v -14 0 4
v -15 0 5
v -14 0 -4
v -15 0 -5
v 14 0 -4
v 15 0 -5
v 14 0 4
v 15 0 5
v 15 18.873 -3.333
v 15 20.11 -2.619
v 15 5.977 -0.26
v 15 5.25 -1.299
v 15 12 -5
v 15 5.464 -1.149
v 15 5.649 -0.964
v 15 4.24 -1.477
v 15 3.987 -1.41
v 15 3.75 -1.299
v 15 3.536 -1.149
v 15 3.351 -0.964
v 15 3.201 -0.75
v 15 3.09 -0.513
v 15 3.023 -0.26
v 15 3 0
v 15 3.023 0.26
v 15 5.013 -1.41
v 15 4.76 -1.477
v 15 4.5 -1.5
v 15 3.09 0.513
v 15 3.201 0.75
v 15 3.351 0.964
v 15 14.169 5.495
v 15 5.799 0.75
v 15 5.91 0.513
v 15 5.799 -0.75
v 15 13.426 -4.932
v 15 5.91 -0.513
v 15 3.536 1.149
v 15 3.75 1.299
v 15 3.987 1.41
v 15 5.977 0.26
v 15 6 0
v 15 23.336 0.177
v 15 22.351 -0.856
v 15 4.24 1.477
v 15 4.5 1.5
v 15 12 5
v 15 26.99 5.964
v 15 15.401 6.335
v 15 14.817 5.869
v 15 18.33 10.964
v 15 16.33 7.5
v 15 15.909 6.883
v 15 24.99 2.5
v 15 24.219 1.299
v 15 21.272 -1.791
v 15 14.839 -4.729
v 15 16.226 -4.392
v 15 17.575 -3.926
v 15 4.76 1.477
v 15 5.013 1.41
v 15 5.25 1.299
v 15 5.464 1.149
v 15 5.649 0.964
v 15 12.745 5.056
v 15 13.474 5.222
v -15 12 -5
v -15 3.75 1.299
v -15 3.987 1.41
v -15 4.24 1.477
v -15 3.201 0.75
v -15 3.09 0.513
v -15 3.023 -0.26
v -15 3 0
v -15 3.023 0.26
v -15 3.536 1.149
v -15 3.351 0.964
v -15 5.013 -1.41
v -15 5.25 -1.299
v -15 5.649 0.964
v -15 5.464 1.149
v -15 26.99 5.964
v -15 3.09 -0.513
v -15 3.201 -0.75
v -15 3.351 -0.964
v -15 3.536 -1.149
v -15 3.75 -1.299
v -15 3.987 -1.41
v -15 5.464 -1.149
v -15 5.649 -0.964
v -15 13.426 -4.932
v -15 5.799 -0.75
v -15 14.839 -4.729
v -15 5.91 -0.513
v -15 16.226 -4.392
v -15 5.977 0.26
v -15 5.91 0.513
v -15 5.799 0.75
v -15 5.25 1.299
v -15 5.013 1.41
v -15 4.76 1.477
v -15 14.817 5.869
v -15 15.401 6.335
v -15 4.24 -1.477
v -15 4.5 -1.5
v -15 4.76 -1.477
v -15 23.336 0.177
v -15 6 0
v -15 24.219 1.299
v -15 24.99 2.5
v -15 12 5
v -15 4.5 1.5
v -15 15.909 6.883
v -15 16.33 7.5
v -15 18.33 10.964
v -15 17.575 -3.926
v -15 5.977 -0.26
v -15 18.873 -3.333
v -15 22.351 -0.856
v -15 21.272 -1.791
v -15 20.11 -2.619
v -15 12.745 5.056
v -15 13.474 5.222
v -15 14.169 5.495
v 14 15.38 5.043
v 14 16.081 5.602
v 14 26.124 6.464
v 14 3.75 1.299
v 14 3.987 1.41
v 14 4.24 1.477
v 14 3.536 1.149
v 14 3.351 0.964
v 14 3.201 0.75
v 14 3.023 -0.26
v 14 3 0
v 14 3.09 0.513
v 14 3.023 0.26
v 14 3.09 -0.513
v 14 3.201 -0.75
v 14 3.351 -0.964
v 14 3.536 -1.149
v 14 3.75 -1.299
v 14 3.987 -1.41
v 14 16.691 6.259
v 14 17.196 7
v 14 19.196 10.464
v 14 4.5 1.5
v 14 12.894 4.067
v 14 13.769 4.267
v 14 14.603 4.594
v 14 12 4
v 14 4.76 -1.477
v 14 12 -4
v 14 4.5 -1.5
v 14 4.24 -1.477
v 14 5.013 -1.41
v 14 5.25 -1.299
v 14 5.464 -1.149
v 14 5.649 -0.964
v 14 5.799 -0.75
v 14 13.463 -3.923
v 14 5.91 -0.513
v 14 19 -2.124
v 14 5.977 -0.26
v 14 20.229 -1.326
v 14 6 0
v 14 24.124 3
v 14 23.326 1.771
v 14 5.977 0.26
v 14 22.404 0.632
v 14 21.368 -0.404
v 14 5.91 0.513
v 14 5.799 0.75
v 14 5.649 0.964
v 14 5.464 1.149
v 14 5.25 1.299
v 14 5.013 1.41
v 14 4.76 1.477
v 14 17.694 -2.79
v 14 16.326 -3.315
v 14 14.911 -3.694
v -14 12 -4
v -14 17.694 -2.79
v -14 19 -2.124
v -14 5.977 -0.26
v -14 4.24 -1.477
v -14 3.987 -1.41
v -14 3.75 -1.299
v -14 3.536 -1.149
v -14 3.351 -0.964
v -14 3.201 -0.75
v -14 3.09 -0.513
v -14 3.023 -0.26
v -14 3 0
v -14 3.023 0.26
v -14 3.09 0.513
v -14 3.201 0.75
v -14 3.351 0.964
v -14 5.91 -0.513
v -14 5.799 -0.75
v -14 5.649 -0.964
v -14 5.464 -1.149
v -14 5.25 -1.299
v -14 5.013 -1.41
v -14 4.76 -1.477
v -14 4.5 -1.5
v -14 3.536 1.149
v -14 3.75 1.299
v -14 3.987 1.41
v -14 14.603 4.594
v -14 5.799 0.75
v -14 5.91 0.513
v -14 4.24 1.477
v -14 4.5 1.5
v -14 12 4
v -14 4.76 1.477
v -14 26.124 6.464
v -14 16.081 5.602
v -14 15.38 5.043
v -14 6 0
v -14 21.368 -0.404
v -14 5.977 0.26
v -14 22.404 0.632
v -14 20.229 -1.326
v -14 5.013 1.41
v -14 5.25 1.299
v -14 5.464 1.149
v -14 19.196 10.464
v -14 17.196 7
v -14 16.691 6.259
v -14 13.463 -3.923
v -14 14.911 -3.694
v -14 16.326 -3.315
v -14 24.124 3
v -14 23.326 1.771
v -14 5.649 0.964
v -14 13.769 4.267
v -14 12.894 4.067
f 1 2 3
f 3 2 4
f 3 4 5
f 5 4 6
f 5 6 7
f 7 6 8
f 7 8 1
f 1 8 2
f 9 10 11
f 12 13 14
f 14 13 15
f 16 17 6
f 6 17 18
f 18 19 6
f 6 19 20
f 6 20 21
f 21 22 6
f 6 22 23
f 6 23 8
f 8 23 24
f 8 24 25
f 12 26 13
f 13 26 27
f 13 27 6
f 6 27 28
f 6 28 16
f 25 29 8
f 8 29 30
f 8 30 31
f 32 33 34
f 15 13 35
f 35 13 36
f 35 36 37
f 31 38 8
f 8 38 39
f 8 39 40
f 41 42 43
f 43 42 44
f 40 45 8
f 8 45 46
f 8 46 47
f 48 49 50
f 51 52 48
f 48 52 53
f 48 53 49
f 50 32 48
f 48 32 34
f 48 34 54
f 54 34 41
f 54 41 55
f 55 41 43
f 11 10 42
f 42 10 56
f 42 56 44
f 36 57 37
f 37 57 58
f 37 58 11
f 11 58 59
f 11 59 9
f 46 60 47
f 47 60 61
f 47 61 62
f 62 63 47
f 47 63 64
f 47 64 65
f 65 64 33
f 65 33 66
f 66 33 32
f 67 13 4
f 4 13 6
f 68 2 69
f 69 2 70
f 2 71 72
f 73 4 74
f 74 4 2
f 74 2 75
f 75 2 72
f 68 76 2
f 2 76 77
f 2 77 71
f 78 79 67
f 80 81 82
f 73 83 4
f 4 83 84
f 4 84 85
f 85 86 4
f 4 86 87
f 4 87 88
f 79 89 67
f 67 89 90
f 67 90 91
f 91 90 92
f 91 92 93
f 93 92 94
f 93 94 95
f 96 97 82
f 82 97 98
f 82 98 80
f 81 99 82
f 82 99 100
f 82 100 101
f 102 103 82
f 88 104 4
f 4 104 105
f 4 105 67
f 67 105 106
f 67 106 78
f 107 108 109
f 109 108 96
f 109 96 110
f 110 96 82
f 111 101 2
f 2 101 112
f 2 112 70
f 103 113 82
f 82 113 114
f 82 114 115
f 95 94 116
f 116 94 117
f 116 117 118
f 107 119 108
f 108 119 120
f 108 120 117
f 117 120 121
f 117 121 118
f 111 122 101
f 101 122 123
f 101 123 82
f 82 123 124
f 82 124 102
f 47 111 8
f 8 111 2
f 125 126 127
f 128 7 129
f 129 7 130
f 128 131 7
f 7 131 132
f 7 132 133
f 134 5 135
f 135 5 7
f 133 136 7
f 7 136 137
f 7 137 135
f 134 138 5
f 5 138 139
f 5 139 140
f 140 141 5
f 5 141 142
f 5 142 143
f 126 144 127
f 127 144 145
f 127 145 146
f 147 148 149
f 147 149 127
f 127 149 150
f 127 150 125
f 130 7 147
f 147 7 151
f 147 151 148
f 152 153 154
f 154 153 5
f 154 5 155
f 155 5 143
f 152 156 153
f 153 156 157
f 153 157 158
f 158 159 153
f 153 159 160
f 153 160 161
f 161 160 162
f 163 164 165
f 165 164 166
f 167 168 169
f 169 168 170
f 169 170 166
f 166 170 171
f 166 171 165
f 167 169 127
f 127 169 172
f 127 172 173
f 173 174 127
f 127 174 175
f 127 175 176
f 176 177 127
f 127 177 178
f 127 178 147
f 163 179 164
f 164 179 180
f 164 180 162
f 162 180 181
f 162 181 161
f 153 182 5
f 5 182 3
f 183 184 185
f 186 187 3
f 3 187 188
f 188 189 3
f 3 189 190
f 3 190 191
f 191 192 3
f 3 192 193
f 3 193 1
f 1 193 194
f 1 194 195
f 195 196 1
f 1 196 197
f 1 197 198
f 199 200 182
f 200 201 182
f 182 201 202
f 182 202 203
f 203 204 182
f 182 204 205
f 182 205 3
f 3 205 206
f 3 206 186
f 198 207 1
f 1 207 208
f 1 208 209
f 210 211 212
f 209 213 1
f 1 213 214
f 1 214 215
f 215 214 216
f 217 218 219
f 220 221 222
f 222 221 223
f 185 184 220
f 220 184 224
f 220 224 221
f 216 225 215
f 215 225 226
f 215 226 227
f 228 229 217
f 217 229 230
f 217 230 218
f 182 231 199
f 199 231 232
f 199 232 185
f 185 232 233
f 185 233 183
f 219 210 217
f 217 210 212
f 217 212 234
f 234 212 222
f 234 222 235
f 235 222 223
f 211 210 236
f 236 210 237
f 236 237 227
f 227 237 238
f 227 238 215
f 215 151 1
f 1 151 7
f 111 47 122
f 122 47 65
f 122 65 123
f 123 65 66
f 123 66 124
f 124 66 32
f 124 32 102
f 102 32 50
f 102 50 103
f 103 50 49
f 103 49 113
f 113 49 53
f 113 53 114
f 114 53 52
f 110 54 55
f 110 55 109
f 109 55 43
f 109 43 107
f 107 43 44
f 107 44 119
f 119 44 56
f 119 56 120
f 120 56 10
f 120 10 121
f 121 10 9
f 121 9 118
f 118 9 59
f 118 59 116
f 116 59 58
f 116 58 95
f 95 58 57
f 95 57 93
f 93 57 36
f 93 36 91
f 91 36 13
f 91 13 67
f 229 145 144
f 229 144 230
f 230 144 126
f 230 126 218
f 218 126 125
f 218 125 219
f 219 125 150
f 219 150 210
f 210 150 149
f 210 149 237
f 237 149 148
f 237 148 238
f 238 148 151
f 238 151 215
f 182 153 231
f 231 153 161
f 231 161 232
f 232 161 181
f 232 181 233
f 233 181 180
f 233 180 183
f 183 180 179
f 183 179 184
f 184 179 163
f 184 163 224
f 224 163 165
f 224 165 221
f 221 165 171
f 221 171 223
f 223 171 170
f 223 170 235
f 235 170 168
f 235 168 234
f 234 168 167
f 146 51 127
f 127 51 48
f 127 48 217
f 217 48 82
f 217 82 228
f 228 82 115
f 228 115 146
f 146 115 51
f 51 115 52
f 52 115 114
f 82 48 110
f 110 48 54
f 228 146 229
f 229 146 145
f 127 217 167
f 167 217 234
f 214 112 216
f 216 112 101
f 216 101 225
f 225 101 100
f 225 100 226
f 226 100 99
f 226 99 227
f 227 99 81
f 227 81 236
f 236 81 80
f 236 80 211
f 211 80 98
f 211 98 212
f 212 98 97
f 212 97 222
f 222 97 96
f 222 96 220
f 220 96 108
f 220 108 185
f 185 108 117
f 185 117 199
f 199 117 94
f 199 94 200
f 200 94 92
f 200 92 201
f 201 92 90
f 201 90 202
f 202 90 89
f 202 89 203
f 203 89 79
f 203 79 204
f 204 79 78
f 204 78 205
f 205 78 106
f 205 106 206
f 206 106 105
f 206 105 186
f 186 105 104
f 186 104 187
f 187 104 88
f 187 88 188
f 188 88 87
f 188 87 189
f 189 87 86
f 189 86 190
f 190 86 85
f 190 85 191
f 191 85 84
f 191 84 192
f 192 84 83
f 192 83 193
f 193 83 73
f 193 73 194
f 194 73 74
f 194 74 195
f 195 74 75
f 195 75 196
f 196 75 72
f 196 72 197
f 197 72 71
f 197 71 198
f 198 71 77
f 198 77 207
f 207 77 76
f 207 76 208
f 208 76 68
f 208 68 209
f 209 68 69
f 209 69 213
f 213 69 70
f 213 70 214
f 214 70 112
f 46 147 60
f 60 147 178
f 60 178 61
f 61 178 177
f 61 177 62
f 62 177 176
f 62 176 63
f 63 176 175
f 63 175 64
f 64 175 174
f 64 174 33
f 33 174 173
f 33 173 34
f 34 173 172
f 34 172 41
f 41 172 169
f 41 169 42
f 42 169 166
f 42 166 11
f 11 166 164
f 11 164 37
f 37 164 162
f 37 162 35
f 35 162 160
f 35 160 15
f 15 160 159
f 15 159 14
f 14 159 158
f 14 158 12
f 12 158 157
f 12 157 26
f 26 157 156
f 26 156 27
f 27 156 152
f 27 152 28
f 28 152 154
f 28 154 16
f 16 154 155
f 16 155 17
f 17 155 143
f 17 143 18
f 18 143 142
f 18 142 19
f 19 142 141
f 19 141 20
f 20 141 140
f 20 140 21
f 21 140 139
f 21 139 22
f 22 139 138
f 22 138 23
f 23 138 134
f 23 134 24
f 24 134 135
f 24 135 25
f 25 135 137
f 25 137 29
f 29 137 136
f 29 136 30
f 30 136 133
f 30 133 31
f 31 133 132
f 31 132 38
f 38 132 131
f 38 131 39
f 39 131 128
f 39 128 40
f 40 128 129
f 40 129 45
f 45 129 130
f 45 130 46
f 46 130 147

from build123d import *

# Parameters (mm, degrees)
SKETCH1_W           = 30
SKETCH1_H           = 10
SKETCH1_W_2         = 28
SKETCH1_H_2         = 8
BOSS_EXTRUDE1_DEPTH = 12
SWEEP1_START        = -15
SWEEP1_DEPTH        = 30
SWEEP1_2_DEPTH      = 1
SWEEP1_START_2      = 14
SWEEP1_3_DEPTH      = 1
SKETCH4_W           = 30
SKETCH4_H           = 10
SKETCH4_W_2         = 28
SKETCH4_H_2         = 8
BOSS_EXTRUDE2_DEPTH = 4
SKETCH7_R           = 1.5
CUT_EXTRUDE1_DEPTH  = 42.817367132


# Read off the part's stored shape, not the designer's step: Sweep1
with BuildPart() as part:
    # Sketch1 → Boss-Extrude1 (new body)
    with BuildSketch(Plane(origin=(0, 0, 0), x_dir=(1, 0, 0), z_dir=(0, 1, 0))):
        Rectangle(SKETCH1_W, SKETCH1_H)
        Rectangle(SKETCH1_W_2, SKETCH1_H_2, mode=Mode.SUBTRACT)
    extrude(amount=BOSS_EXTRUDE1_DEPTH)

    # Sweep1 outline → Sweep1 (add)
    with BuildSketch(Plane.YZ.offset(SWEEP1_START)):
        with BuildLine():
            ThreePointArc((16.330127019, 7.5), (14.5, 5.669872981), (12, 5))
            Line((12, 5), (12, 4))
            ThreePointArc((12, 4), (15, 4.803847577), (17.196152423, 7))
            Line((17.196152423, 7), (16.330127019, 7.5))
        make_face()
        with BuildLine():
            ThreePointArc((24.124355653, 3), (19, -2.124355653), (12, -4))
            Line((12, -4), (12, -5))
            ThreePointArc((12, -5), (19.5, -2.990381057), (24.990381057, 2.5))
            Line((24.990381057, 2.5), (24.124355653, 3))
        make_face()
    extrude(amount=SWEEP1_DEPTH)

    # Sweep1 2 outline → Sweep1 2 (add)
    with BuildSketch(Plane.YZ.offset(SWEEP1_START)):
        with BuildLine():
            ThreePointArc((17.196152423, 7), (15, 4.803847577), (12, 4))
            Line((12, 4), (12, -4))
            ThreePointArc((12, -4), (19, -2.124355653), (24.124355653, 3))
            Line((24.124355653, 3), (17.196152423, 7))
        make_face()
    extrude(amount=SWEEP1_2_DEPTH)

    # Sweep1 3 outline → Sweep1 3 (add)
    with BuildSketch(Plane.YZ.offset(SWEEP1_START_2)):
        with BuildLine():
            ThreePointArc((17.196152423, 7), (15, 4.803847577), (12, 4))
            Line((12, 4), (12, -4))
            ThreePointArc((12, -4), (19, -2.124355653), (24.124355653, 3))
            Line((24.124355653, 3), (17.196152423, 7))
        make_face()
    extrude(amount=SWEEP1_3_DEPTH)

    # Sketch4 → Boss-Extrude2 (add)
    with BuildSketch(Plane(origin=(0, 7.330127019, 12.696152423), x_dir=(1, 0, 0), z_dir=(0, 0.4999999999999947, 0.8660254037844418))):
        with Locations((0, 15.392304845)):
            Rectangle(SKETCH4_W, SKETCH4_H)
        with Locations((0, 15.392304845)):
            Rectangle(SKETCH4_W_2, SKETCH4_H_2, mode=Mode.SUBTRACT)
    extrude(amount=BOSS_EXTRUDE2_DEPTH)

    # Sketch7 → Cut-Extrude1 (cut, through all)
    with BuildSketch(Plane.ZY.offset(15)):
        with Locations((0, 4.5)):
            Circle(SKETCH7_R)
    extrude(amount=-CUT_EXTRUDE1_DEPTH, mode=Mode.SUBTRACT)


solid = part.part
